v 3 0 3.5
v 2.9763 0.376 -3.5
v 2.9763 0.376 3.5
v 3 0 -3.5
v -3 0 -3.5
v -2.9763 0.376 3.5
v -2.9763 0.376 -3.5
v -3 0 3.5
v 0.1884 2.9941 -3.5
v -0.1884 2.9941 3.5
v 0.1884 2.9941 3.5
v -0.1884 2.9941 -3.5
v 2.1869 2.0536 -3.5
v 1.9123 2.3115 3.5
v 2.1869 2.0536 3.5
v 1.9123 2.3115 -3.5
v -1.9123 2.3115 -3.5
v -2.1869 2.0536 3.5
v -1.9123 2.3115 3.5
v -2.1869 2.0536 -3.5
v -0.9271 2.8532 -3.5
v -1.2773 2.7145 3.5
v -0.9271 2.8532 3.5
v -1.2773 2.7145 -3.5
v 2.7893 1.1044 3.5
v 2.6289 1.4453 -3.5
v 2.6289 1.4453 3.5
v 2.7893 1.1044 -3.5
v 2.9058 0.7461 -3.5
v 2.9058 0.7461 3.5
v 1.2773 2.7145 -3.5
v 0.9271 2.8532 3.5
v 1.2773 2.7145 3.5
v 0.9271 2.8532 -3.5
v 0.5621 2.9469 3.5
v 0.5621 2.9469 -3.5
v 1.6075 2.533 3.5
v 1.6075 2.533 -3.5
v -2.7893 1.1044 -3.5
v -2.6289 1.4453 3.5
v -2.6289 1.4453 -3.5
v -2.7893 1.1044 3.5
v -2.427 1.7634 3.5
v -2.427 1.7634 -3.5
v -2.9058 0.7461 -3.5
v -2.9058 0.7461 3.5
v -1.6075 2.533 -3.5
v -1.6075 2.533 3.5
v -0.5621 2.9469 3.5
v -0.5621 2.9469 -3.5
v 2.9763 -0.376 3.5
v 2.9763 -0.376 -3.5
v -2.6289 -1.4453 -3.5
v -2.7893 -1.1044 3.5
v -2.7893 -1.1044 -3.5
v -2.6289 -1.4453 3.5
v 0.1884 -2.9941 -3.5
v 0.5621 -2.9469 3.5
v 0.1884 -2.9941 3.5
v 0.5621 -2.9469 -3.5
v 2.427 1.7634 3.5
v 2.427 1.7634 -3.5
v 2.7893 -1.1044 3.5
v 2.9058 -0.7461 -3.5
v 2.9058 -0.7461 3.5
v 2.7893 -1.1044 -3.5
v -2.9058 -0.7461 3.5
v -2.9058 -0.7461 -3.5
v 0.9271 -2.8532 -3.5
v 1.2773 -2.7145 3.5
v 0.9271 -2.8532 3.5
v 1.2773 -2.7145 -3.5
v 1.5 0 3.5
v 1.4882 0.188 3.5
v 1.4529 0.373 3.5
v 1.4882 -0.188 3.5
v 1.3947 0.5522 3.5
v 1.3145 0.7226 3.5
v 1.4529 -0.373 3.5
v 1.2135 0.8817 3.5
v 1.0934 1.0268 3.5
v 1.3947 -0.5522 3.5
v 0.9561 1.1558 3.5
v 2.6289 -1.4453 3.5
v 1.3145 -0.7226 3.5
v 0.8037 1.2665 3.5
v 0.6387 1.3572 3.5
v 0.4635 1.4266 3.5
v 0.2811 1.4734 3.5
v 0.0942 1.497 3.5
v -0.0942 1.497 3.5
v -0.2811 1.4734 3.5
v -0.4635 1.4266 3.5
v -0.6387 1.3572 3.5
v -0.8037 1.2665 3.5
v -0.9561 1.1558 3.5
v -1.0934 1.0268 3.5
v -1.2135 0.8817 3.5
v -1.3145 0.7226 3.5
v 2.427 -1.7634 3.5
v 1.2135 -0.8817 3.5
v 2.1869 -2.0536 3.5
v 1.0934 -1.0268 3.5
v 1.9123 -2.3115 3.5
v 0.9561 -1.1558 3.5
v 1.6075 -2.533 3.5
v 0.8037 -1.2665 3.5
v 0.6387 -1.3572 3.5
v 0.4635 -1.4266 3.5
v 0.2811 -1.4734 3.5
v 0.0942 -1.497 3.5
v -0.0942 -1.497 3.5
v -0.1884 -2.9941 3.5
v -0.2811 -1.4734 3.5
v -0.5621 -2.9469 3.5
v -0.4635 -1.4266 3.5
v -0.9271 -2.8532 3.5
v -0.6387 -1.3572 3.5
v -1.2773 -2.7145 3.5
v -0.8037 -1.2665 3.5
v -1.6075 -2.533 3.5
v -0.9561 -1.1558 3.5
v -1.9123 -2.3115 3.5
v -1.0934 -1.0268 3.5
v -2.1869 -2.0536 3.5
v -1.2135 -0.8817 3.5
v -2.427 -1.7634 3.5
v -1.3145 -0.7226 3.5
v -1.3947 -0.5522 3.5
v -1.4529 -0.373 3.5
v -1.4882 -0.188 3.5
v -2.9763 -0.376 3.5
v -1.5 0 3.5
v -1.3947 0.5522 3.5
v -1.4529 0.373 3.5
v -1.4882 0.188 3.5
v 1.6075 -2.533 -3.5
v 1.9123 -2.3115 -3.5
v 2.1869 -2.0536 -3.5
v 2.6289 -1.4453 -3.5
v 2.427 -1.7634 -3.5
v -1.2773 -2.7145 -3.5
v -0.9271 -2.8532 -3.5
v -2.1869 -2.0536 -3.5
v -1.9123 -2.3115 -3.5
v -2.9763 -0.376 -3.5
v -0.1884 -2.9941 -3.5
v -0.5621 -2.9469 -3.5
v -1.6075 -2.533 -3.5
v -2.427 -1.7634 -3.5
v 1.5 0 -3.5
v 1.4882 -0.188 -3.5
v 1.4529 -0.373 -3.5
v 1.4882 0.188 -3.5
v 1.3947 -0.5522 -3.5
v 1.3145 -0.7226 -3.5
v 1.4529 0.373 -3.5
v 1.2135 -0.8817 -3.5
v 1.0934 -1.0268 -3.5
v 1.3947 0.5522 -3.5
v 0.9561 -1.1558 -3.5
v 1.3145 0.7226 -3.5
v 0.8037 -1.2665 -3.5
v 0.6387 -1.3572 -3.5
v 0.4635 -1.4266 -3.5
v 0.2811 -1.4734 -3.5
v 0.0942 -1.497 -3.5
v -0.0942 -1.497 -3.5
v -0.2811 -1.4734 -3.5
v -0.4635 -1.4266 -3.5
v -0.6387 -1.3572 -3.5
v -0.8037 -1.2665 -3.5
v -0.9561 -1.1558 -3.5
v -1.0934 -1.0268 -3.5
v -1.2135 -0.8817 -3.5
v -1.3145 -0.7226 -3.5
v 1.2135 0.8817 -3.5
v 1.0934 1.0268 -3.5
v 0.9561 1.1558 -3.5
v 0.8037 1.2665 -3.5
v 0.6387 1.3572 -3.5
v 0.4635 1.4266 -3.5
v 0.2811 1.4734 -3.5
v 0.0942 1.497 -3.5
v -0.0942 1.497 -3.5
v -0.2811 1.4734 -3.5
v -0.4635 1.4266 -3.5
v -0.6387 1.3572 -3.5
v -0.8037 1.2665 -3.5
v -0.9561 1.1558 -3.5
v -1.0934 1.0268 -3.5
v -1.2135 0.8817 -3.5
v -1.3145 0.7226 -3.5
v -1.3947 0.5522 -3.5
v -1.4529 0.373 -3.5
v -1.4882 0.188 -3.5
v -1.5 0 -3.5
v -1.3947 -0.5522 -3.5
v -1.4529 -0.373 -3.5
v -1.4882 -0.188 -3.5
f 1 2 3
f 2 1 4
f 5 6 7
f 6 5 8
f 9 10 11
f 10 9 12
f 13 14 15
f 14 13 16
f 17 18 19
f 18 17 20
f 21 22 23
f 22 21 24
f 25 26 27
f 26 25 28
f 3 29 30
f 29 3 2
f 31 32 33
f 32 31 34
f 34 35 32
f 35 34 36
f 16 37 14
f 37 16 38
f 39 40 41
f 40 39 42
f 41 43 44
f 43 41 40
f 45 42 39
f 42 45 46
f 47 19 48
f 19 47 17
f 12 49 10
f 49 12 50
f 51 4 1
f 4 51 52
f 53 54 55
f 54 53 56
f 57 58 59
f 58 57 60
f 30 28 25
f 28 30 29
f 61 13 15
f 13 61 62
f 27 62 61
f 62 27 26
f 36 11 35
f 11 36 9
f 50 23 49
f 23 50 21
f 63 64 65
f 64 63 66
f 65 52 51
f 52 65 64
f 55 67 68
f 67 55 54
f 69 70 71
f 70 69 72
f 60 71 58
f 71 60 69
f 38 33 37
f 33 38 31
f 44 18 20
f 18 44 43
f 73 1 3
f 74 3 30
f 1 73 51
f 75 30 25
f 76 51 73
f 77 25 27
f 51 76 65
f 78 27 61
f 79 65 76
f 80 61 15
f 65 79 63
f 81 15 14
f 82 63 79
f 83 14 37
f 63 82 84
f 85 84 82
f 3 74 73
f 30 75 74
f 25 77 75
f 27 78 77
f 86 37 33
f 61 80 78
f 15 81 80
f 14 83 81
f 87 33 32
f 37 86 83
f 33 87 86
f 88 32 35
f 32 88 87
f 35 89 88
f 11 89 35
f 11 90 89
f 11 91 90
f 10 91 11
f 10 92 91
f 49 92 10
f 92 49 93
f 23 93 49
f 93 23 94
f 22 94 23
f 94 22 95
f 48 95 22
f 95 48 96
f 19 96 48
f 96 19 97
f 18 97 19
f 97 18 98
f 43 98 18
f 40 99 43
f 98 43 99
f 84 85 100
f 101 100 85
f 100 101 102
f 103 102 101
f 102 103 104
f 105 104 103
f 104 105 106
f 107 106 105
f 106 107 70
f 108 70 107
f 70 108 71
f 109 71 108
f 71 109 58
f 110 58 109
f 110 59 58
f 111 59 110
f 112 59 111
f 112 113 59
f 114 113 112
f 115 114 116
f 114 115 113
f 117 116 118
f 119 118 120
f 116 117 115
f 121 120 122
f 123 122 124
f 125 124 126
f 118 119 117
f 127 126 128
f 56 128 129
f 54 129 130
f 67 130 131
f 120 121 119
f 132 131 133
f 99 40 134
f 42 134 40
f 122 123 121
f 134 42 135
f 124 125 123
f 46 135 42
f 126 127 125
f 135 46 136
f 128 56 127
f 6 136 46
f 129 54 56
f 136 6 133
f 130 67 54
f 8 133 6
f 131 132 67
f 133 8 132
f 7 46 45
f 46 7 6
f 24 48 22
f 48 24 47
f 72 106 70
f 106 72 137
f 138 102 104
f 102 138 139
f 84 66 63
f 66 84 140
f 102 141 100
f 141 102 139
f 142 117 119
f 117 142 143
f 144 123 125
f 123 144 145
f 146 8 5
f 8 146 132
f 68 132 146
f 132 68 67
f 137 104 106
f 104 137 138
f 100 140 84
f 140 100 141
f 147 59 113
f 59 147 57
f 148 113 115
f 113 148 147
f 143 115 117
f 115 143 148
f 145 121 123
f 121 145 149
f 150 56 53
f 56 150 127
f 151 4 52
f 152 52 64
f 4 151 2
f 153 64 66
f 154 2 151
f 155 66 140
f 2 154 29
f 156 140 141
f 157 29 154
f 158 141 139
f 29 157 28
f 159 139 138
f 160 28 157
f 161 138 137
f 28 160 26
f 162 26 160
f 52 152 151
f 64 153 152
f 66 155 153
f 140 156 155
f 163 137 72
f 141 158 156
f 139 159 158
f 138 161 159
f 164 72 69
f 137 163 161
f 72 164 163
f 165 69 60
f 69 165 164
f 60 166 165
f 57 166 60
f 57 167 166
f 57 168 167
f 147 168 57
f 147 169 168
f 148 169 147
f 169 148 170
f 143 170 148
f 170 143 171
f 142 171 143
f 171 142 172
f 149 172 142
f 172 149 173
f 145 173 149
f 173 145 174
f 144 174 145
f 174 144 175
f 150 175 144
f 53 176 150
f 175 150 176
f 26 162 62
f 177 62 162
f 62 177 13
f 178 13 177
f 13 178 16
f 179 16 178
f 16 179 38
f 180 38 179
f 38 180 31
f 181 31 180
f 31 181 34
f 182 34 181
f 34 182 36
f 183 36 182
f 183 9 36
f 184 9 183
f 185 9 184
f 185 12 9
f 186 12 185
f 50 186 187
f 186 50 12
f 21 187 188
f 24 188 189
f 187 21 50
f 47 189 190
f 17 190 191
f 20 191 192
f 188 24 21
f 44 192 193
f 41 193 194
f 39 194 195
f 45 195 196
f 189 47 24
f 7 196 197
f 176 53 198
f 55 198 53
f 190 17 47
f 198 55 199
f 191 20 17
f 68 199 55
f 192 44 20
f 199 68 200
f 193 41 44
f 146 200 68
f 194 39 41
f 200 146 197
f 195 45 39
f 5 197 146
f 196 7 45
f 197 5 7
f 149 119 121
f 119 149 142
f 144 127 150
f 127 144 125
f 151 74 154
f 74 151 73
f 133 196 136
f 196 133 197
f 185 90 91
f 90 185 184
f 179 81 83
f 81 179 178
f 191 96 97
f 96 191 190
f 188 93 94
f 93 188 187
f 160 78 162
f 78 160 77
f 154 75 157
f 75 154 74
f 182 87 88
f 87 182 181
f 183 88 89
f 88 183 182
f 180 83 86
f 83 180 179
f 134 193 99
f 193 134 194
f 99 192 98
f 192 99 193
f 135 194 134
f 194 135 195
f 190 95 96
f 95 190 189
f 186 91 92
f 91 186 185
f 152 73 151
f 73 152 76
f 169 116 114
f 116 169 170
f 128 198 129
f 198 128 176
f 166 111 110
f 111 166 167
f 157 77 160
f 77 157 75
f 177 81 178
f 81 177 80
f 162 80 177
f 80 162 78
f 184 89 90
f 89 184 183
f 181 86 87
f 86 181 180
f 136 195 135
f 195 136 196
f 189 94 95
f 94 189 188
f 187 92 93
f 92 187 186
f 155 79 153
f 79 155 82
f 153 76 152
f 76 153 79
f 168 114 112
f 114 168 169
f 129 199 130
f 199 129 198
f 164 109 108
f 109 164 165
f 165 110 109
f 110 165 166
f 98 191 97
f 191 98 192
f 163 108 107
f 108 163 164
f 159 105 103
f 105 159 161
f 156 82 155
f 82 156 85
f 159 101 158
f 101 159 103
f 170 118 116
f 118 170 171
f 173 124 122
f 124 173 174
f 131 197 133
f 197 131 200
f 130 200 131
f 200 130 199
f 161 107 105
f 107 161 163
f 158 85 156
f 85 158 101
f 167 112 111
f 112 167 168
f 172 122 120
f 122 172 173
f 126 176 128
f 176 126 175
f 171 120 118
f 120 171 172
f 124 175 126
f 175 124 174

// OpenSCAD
$fn = 50;


difference() {
	union() {
		translate(v = [0, 0, -3.5000000000]) {
			cylinder(h = 7, r = 3.0000000000);
		}
	}
	union() {
		translate(v = [0, 0, -100.0000000000]) {
			cylinder(h = 200, r = 1.5000000000);
		}
	}
}
